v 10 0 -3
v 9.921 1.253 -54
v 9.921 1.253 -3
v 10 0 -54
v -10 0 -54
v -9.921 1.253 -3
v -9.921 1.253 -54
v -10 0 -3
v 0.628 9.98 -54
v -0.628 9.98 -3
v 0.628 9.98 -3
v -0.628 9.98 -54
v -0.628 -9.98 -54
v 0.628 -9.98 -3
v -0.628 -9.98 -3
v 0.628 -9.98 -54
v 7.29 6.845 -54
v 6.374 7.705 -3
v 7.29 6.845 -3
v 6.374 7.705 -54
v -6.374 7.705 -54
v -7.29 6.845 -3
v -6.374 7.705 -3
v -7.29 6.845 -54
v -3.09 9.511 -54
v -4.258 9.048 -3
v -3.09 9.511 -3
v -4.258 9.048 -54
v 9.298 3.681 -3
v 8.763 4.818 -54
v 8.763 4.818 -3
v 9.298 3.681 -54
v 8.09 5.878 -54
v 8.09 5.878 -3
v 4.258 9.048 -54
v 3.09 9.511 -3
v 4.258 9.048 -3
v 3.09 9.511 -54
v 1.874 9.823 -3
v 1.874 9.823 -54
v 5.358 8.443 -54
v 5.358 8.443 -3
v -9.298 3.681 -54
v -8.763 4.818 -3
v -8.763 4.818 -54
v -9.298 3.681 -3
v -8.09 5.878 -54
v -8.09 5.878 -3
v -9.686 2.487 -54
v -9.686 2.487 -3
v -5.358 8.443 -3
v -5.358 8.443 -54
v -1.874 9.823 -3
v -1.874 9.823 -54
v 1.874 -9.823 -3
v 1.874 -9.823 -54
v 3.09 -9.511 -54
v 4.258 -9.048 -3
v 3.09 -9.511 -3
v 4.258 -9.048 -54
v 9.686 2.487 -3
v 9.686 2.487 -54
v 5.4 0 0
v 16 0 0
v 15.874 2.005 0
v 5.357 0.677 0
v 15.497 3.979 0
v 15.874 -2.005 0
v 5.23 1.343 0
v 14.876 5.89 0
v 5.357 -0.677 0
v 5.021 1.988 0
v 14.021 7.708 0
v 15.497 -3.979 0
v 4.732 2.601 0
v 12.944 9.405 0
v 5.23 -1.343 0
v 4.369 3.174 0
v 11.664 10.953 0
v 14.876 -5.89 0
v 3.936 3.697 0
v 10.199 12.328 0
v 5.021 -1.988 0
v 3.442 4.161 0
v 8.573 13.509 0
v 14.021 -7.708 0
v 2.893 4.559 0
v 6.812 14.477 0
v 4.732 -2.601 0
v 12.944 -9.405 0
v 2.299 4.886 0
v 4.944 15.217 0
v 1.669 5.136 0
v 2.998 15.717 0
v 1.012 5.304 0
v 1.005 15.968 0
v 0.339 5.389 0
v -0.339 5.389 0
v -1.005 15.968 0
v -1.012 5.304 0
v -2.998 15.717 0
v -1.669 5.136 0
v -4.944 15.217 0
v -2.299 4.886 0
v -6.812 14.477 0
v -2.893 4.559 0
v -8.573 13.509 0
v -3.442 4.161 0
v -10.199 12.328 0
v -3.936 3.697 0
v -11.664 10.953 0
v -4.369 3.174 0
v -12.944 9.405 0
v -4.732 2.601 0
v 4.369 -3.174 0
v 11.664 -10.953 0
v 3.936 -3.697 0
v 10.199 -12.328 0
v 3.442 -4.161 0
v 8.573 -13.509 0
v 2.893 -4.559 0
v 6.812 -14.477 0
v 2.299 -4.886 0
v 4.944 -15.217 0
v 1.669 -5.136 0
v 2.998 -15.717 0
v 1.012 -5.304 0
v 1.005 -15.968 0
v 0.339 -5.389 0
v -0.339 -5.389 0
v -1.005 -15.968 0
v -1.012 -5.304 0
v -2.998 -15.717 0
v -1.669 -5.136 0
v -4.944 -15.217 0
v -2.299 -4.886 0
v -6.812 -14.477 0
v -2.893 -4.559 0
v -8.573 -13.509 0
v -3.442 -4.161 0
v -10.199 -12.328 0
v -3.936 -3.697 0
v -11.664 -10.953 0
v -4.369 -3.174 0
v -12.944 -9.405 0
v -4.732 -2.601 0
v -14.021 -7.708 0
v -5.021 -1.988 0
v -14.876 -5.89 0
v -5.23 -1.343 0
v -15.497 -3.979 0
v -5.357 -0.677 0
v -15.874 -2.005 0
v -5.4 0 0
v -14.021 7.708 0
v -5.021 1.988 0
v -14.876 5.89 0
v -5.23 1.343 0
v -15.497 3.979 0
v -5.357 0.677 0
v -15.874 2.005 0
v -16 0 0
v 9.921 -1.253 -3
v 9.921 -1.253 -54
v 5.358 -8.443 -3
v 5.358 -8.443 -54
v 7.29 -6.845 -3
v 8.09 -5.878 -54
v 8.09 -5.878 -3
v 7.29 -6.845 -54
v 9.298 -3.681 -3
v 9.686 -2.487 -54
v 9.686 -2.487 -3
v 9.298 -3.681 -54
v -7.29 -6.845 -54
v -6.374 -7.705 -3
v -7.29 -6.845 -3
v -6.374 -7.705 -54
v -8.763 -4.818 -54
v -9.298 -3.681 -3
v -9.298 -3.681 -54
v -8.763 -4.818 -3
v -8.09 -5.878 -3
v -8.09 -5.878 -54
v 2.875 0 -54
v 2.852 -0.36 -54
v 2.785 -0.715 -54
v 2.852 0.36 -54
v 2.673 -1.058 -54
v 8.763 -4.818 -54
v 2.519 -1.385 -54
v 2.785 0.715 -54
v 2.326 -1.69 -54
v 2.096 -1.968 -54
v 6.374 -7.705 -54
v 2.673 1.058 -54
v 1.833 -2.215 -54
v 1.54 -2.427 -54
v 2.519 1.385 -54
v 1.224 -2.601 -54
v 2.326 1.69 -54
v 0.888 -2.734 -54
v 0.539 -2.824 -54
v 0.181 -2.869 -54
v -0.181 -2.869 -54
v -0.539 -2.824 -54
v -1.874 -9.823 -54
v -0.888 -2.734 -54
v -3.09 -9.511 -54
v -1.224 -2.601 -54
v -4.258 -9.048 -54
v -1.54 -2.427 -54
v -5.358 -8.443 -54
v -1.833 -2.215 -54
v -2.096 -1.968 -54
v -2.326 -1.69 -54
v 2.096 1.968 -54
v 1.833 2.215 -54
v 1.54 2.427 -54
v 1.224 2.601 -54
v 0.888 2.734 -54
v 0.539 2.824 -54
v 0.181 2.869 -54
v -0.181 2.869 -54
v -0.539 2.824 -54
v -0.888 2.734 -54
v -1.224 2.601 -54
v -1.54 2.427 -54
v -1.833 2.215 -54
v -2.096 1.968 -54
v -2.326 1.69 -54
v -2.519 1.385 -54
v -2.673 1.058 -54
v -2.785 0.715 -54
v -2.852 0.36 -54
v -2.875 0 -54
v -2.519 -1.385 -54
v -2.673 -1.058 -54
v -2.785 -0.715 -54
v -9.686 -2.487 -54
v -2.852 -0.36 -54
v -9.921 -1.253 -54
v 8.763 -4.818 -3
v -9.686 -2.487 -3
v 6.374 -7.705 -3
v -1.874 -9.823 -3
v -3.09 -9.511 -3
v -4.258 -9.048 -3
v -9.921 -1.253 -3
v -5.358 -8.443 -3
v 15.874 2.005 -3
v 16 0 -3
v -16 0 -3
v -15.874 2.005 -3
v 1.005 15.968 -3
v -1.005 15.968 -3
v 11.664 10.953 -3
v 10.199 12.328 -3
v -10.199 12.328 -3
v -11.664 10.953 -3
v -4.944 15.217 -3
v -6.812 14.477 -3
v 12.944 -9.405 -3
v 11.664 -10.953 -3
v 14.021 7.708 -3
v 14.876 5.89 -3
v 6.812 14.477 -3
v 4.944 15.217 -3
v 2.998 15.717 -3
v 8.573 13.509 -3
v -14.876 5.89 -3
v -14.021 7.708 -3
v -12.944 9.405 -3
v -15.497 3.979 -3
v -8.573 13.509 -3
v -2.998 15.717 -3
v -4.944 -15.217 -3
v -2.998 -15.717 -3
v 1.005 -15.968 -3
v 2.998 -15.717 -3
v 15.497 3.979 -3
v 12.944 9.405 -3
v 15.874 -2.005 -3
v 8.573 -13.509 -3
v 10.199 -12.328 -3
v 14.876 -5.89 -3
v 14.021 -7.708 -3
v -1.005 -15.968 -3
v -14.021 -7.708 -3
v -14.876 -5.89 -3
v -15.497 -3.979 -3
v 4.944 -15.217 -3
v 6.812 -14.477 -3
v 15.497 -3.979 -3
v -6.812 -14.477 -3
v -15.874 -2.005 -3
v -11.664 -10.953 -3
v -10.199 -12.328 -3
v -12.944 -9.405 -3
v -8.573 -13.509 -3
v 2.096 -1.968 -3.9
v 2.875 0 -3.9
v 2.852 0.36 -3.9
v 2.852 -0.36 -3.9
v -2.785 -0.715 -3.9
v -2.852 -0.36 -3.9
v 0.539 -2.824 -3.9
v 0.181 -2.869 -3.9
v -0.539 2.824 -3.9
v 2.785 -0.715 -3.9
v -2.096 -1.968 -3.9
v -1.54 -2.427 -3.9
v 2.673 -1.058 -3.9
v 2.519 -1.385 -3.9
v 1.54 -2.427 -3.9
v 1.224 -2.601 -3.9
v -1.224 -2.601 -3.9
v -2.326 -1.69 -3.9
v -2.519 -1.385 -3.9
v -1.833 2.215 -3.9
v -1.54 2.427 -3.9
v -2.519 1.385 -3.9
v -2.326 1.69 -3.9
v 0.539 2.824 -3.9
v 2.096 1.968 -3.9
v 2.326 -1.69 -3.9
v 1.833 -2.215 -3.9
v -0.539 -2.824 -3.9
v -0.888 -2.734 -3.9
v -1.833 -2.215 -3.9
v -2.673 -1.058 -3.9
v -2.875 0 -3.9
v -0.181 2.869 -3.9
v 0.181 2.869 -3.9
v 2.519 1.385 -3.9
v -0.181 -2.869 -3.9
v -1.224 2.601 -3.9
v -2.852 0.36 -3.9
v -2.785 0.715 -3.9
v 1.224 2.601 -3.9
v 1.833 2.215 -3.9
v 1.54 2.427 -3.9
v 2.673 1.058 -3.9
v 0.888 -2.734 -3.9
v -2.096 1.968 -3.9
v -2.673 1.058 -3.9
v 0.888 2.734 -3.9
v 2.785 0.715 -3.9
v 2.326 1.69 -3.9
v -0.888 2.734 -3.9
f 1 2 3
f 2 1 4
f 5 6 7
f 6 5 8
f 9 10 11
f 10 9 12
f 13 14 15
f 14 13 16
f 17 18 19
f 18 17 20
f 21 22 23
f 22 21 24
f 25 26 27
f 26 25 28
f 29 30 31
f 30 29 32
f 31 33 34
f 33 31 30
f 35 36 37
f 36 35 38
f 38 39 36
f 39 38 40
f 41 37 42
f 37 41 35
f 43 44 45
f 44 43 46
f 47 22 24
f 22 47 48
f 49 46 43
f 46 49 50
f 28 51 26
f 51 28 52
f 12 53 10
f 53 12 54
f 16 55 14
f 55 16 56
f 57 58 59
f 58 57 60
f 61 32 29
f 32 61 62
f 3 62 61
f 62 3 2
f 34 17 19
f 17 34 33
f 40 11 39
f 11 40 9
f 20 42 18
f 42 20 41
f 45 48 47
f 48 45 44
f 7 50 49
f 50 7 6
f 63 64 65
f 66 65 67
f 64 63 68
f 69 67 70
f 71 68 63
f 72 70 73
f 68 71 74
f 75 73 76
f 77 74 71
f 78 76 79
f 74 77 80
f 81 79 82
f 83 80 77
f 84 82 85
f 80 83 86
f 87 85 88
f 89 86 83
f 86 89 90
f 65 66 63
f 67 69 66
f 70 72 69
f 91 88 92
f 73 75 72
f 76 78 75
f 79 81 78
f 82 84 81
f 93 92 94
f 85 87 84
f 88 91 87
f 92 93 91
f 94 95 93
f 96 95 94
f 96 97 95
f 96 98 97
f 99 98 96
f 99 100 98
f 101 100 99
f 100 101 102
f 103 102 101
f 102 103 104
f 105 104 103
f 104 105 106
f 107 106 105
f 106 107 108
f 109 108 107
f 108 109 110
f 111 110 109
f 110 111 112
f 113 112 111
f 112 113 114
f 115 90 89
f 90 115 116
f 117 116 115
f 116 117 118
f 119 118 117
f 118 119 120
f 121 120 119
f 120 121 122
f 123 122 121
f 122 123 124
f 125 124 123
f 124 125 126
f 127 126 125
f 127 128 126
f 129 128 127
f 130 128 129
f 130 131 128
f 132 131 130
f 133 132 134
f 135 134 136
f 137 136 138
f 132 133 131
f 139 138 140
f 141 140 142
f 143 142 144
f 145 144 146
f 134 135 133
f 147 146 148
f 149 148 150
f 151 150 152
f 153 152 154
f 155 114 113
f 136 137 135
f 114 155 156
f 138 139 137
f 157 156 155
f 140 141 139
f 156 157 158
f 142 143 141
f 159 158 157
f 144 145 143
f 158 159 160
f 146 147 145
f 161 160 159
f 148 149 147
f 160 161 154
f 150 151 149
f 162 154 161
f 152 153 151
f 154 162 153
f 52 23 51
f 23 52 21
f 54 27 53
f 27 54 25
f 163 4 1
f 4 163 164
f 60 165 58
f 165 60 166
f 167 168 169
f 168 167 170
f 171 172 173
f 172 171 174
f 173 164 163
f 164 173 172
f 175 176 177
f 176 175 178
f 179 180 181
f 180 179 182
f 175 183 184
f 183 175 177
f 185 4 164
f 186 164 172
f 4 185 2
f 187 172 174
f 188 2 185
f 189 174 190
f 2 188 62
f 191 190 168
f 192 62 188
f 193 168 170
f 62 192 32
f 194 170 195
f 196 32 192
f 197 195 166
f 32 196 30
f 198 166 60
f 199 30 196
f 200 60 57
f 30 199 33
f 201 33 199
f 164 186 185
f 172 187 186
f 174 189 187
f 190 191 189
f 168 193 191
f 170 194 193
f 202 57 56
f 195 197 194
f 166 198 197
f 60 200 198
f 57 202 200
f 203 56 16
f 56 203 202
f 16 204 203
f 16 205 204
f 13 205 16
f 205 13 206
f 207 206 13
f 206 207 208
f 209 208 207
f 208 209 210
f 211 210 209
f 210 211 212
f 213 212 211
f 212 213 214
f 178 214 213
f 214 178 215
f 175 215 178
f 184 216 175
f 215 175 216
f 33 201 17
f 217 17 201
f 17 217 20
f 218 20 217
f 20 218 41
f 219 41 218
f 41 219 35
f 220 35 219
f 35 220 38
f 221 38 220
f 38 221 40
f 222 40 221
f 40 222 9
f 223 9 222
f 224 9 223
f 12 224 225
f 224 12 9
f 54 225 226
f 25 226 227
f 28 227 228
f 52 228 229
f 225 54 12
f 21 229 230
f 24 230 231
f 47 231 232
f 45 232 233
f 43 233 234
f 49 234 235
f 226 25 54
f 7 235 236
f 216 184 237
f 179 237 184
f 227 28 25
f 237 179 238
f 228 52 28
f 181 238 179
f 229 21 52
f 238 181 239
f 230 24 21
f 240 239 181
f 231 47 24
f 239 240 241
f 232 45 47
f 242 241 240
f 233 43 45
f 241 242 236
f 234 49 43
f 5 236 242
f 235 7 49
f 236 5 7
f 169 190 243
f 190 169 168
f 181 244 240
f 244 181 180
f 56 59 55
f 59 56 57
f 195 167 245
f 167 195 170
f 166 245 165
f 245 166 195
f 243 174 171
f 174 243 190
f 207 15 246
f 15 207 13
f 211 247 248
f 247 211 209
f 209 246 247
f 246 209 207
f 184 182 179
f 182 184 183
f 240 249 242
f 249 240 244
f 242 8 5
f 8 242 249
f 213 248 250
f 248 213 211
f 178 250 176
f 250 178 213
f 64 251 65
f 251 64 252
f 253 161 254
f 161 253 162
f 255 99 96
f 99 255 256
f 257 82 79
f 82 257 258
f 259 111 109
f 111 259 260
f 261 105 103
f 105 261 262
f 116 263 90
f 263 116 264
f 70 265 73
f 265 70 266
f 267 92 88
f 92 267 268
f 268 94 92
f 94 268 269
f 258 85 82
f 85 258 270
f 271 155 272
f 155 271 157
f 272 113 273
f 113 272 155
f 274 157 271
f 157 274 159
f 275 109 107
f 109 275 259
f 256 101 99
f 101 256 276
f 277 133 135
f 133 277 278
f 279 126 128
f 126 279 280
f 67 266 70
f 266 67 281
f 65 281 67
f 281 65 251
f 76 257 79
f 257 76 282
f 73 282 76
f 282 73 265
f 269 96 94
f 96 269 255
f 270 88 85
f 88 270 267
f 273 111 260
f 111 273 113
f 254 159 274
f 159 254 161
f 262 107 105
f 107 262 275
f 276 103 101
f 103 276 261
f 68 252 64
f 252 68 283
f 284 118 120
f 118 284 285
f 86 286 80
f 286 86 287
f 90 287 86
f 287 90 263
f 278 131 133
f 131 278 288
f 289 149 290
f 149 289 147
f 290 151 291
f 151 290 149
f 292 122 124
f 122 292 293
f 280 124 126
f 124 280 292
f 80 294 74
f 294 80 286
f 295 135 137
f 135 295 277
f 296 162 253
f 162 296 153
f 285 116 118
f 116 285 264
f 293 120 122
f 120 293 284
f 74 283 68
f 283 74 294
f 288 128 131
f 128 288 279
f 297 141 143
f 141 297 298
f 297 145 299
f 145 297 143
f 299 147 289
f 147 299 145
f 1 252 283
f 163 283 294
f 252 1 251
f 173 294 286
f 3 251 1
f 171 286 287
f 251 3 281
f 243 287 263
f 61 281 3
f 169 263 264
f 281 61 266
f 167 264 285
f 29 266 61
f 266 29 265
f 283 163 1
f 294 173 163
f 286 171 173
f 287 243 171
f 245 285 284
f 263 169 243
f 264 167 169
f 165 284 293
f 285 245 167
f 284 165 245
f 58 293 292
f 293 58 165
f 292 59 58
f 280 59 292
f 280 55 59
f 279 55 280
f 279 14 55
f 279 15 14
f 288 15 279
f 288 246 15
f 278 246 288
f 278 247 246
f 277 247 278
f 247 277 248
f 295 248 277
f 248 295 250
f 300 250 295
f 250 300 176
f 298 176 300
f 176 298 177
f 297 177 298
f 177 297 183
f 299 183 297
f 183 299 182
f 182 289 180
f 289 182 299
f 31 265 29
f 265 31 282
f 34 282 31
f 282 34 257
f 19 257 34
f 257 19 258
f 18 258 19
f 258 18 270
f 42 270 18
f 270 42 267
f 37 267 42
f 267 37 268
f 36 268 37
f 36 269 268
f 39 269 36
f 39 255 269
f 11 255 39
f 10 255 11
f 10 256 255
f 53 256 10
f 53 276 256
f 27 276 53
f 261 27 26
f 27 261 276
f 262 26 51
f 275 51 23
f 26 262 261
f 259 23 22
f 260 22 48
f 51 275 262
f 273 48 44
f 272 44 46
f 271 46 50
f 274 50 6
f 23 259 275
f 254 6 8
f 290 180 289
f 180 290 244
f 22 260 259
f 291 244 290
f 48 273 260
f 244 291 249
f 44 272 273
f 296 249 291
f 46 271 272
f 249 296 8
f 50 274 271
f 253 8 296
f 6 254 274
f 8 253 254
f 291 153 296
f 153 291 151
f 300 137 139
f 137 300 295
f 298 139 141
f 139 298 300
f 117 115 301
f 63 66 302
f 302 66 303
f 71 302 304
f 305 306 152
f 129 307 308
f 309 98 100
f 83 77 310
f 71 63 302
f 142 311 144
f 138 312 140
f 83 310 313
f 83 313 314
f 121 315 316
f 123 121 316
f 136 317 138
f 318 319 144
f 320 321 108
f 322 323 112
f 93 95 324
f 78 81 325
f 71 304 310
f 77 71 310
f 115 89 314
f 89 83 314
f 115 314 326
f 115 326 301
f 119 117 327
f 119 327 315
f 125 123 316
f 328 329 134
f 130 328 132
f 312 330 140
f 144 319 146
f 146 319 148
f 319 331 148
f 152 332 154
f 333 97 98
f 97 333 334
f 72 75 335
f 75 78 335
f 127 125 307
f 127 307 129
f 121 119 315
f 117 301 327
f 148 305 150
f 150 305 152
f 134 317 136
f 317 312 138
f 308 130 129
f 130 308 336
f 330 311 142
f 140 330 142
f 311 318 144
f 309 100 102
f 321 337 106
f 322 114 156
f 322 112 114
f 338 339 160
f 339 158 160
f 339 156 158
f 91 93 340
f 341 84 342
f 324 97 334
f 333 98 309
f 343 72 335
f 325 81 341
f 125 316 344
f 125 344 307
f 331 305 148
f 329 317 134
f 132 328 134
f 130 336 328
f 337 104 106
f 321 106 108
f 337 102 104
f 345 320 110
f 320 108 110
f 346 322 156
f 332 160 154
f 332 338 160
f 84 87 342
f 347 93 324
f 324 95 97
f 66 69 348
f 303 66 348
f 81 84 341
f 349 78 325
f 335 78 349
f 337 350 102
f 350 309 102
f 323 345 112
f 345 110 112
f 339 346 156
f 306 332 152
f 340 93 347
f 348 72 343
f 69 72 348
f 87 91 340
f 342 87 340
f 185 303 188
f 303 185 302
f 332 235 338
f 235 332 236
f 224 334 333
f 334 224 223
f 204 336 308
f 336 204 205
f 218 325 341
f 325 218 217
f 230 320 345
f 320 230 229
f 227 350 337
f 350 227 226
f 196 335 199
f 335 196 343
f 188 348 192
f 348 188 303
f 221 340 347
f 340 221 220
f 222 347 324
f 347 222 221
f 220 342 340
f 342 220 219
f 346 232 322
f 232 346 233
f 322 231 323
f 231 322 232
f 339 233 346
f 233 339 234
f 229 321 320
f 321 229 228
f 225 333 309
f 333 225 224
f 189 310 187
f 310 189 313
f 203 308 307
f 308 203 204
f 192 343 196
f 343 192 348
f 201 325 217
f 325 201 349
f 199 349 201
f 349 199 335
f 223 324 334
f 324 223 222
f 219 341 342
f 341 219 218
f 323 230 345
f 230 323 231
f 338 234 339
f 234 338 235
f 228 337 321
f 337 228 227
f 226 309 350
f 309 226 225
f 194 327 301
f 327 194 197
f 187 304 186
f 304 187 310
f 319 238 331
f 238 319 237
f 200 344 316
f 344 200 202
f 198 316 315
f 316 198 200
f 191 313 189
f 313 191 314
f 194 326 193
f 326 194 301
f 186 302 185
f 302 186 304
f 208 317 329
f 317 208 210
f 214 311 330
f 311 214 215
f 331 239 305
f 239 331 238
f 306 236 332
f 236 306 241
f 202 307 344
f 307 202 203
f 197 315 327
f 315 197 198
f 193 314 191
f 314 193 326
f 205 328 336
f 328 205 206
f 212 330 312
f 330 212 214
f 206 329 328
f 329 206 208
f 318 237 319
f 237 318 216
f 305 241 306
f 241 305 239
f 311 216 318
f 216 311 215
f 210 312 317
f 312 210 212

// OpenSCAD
$fn = 50;


difference() {
	union() {
		translate(v = [0, 0, -54.0000000000]) {
			cylinder(h = 54, r = 10.0000000000);
		}
		translate(v = [0, 0, -3.0000000000]) {
			cylinder(h = 3, r = 16.0000000000);
		}
	}
	union() {
		translate(v = [0, 0, 0]) {
			rotate(a = [0, 0, 0]) {
				difference() {
					union() {
						#translate(v = [0, 0, -54.0000000000]) {
							cylinder(h = 54, r = 2.6000000000);
						}
						#translate(v = [0, 0, -3.9000000000]) {
							cylinder(h = 3.9000000000, r = 10.0000000000, r1 = 2.8750000000, r2 = 5.4000000000);
						}
						#translate(v = [0, 0, -54.0000000000]) {
							cylinder(h = 54, r = 2.8750000000);
						}
						#translate(v = [0, 0, -54.0000000000]) {
							cylinder(h = 54, r = 2.6000000000);
						}
					}
					union();
				}
			}
		}
	}
}
